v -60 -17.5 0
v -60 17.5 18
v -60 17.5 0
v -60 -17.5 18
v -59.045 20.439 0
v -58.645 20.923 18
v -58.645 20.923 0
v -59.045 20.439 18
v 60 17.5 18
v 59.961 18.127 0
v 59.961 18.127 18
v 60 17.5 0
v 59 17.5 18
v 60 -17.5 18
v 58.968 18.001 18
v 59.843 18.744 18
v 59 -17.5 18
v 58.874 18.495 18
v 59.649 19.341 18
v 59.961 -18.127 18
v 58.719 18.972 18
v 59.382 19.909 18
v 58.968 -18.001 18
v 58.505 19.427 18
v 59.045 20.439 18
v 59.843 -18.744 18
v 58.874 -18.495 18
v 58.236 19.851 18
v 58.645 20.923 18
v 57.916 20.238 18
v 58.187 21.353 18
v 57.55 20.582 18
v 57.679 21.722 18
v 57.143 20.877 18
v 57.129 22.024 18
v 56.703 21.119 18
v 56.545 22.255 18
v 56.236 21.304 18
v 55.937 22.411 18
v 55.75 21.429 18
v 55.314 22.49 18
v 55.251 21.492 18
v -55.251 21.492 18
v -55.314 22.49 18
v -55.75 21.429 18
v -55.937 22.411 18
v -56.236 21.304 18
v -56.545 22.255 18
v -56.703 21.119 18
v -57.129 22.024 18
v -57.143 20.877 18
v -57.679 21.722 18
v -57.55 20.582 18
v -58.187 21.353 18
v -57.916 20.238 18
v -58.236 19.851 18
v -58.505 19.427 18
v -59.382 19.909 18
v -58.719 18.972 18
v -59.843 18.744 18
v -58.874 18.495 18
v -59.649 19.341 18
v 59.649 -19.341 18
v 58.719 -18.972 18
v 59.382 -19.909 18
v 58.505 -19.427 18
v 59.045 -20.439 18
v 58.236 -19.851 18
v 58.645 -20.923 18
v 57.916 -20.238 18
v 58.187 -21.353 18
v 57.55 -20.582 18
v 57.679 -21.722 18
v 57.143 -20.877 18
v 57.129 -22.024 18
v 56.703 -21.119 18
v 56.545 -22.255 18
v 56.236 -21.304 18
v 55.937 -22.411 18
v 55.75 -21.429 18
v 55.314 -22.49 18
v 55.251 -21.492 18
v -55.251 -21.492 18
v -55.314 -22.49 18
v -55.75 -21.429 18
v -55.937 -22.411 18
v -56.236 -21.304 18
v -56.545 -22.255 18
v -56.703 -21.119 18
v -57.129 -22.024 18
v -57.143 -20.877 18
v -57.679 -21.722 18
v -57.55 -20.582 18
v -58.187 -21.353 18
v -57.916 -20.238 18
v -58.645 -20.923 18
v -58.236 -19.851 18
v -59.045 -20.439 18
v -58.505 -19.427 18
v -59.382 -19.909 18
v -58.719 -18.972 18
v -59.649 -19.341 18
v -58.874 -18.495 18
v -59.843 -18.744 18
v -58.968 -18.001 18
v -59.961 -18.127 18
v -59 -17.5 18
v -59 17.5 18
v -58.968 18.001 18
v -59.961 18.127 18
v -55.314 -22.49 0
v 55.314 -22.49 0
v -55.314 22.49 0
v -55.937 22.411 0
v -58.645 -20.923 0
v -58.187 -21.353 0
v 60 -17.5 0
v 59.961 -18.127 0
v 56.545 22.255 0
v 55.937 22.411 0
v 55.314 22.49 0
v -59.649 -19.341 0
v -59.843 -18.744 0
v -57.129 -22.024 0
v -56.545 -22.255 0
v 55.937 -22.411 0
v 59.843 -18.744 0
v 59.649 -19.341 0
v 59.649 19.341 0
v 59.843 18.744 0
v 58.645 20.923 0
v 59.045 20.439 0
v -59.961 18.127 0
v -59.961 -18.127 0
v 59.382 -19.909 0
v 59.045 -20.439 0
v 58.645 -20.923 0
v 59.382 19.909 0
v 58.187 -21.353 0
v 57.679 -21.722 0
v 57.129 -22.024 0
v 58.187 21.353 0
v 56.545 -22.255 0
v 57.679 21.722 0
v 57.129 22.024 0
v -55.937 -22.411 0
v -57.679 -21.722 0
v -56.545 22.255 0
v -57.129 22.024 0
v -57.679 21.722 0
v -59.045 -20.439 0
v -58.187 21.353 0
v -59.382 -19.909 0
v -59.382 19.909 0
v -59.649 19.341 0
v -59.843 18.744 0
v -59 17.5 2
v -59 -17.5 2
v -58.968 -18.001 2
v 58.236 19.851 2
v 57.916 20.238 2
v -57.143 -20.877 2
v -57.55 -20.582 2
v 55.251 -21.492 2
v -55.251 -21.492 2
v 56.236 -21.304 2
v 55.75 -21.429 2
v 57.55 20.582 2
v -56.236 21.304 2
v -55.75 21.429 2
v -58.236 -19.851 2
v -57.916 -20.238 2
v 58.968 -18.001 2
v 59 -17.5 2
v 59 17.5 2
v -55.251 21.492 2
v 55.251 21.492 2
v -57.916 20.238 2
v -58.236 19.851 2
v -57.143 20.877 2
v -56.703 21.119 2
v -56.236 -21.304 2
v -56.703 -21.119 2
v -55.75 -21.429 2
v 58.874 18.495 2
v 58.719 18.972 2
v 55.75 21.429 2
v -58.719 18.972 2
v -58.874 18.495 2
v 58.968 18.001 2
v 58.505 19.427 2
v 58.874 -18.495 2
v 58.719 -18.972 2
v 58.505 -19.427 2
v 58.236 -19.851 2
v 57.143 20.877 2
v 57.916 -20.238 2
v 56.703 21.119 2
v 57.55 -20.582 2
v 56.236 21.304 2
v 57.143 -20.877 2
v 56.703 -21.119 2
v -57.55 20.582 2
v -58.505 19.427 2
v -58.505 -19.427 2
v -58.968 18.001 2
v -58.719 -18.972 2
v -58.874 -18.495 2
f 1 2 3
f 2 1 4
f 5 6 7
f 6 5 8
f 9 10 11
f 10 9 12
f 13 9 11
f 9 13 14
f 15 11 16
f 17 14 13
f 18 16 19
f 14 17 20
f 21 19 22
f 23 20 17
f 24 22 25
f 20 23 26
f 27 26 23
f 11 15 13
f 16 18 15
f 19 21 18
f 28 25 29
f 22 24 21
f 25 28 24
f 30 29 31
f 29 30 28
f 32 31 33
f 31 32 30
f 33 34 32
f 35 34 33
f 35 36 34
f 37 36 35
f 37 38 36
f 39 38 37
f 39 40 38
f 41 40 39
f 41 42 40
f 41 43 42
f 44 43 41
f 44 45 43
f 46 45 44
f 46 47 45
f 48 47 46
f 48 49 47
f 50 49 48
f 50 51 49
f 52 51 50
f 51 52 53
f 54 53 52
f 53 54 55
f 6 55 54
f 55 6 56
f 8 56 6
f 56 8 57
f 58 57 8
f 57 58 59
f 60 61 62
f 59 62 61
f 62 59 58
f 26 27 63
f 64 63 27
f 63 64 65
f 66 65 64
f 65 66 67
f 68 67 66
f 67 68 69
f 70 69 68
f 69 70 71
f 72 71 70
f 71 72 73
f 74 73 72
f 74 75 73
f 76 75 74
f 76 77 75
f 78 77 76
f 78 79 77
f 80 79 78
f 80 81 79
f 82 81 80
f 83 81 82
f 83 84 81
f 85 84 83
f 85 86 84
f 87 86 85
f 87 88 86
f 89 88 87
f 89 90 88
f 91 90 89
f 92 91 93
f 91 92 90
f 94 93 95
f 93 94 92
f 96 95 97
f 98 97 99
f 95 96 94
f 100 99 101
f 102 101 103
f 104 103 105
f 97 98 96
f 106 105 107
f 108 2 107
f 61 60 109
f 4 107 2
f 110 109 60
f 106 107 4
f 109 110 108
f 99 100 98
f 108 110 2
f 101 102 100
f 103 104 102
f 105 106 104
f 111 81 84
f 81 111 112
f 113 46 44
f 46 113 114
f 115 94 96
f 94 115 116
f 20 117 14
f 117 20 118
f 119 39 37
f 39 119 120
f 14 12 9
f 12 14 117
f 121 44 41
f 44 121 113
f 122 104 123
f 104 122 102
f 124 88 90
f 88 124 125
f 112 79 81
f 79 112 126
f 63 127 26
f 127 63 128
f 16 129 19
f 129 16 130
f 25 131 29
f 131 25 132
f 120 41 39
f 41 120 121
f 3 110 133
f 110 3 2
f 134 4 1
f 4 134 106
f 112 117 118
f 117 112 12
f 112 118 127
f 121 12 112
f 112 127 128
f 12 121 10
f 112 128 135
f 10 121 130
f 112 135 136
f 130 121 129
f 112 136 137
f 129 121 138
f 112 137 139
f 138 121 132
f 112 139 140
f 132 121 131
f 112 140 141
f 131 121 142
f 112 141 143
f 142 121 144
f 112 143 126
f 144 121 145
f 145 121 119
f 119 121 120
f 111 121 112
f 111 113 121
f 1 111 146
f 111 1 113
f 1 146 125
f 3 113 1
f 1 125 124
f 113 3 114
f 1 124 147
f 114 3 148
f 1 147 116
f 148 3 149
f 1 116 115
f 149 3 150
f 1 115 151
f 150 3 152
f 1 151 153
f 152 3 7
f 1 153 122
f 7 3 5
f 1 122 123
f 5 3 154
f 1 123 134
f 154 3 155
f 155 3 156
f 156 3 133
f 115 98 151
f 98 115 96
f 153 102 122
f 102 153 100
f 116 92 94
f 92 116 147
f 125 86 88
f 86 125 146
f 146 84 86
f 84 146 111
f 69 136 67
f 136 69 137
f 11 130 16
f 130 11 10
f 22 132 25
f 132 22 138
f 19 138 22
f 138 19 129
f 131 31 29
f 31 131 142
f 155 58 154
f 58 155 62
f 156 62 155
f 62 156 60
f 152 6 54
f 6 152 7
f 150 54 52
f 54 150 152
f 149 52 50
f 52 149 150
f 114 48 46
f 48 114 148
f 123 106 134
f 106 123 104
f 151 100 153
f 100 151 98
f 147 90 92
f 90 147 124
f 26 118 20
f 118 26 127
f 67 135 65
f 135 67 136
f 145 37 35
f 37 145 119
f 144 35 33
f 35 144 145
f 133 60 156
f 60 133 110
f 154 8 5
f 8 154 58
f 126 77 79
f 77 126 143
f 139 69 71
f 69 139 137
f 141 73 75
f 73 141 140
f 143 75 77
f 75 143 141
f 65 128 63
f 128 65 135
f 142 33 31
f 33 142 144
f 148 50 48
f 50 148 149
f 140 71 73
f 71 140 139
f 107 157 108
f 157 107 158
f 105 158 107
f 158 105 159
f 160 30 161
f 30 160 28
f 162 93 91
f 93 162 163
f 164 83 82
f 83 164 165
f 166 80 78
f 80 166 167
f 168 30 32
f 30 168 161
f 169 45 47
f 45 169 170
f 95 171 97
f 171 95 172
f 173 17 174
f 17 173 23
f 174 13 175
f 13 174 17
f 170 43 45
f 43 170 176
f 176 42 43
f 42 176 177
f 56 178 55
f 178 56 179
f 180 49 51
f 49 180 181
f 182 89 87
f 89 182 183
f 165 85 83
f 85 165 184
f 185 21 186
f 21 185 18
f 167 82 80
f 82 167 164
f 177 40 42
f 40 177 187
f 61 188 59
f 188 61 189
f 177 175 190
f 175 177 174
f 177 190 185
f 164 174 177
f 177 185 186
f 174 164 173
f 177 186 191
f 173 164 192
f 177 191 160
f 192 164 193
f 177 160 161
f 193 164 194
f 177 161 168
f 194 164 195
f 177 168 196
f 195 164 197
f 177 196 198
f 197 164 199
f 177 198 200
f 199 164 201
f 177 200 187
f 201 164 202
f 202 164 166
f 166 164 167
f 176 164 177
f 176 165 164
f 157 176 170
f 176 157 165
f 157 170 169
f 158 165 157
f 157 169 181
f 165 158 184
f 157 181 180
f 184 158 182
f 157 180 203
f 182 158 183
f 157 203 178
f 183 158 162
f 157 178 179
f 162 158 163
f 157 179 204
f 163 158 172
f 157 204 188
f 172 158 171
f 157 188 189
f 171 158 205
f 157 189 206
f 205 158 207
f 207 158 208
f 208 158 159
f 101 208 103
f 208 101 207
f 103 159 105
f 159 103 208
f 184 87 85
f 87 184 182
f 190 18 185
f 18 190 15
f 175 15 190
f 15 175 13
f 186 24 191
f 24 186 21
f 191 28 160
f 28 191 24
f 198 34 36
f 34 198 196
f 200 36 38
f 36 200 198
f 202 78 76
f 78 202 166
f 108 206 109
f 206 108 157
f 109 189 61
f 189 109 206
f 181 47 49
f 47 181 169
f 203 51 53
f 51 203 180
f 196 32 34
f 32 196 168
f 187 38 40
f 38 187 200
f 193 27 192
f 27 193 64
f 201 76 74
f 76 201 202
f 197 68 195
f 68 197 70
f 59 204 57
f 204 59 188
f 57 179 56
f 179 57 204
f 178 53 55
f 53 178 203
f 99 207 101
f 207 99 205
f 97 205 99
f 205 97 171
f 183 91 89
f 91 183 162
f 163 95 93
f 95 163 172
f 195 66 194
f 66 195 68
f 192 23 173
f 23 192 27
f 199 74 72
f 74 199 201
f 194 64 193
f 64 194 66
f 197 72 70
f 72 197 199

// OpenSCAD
$fn = 50;


difference() {
	union() {
		hull() {
			translate(v = [-55.0000000000, 17.5000000000, 0]) {
				cylinder(h = 18, r = 5);
			}
			translate(v = [55.0000000000, 17.5000000000, 0]) {
				cylinder(h = 18, r = 5);
			}
			translate(v = [-55.0000000000, -17.5000000000, 0]) {
				cylinder(h = 18, r = 5);
			}
			translate(v = [55.0000000000, -17.5000000000, 0]) {
				cylinder(h = 18, r = 5);
			}
		}
	}
	union() {
		translate(v = [0, 0, 2]) {
			hull() {
				translate(v = [-55.0000000000, 17.5000000000, 0]) {
					cylinder(h = 16, r = 4);
				}
				translate(v = [55.0000000000, 17.5000000000, 0]) {
					cylinder(h = 16, r = 4);
				}
				translate(v = [-55.0000000000, -17.5000000000, 0]) {
					cylinder(h = 16, r = 4);
				}
				translate(v = [55.0000000000, -17.5000000000, 0]) {
					cylinder(h = 16, r = 4);
				}
			}
		}
	}
}
